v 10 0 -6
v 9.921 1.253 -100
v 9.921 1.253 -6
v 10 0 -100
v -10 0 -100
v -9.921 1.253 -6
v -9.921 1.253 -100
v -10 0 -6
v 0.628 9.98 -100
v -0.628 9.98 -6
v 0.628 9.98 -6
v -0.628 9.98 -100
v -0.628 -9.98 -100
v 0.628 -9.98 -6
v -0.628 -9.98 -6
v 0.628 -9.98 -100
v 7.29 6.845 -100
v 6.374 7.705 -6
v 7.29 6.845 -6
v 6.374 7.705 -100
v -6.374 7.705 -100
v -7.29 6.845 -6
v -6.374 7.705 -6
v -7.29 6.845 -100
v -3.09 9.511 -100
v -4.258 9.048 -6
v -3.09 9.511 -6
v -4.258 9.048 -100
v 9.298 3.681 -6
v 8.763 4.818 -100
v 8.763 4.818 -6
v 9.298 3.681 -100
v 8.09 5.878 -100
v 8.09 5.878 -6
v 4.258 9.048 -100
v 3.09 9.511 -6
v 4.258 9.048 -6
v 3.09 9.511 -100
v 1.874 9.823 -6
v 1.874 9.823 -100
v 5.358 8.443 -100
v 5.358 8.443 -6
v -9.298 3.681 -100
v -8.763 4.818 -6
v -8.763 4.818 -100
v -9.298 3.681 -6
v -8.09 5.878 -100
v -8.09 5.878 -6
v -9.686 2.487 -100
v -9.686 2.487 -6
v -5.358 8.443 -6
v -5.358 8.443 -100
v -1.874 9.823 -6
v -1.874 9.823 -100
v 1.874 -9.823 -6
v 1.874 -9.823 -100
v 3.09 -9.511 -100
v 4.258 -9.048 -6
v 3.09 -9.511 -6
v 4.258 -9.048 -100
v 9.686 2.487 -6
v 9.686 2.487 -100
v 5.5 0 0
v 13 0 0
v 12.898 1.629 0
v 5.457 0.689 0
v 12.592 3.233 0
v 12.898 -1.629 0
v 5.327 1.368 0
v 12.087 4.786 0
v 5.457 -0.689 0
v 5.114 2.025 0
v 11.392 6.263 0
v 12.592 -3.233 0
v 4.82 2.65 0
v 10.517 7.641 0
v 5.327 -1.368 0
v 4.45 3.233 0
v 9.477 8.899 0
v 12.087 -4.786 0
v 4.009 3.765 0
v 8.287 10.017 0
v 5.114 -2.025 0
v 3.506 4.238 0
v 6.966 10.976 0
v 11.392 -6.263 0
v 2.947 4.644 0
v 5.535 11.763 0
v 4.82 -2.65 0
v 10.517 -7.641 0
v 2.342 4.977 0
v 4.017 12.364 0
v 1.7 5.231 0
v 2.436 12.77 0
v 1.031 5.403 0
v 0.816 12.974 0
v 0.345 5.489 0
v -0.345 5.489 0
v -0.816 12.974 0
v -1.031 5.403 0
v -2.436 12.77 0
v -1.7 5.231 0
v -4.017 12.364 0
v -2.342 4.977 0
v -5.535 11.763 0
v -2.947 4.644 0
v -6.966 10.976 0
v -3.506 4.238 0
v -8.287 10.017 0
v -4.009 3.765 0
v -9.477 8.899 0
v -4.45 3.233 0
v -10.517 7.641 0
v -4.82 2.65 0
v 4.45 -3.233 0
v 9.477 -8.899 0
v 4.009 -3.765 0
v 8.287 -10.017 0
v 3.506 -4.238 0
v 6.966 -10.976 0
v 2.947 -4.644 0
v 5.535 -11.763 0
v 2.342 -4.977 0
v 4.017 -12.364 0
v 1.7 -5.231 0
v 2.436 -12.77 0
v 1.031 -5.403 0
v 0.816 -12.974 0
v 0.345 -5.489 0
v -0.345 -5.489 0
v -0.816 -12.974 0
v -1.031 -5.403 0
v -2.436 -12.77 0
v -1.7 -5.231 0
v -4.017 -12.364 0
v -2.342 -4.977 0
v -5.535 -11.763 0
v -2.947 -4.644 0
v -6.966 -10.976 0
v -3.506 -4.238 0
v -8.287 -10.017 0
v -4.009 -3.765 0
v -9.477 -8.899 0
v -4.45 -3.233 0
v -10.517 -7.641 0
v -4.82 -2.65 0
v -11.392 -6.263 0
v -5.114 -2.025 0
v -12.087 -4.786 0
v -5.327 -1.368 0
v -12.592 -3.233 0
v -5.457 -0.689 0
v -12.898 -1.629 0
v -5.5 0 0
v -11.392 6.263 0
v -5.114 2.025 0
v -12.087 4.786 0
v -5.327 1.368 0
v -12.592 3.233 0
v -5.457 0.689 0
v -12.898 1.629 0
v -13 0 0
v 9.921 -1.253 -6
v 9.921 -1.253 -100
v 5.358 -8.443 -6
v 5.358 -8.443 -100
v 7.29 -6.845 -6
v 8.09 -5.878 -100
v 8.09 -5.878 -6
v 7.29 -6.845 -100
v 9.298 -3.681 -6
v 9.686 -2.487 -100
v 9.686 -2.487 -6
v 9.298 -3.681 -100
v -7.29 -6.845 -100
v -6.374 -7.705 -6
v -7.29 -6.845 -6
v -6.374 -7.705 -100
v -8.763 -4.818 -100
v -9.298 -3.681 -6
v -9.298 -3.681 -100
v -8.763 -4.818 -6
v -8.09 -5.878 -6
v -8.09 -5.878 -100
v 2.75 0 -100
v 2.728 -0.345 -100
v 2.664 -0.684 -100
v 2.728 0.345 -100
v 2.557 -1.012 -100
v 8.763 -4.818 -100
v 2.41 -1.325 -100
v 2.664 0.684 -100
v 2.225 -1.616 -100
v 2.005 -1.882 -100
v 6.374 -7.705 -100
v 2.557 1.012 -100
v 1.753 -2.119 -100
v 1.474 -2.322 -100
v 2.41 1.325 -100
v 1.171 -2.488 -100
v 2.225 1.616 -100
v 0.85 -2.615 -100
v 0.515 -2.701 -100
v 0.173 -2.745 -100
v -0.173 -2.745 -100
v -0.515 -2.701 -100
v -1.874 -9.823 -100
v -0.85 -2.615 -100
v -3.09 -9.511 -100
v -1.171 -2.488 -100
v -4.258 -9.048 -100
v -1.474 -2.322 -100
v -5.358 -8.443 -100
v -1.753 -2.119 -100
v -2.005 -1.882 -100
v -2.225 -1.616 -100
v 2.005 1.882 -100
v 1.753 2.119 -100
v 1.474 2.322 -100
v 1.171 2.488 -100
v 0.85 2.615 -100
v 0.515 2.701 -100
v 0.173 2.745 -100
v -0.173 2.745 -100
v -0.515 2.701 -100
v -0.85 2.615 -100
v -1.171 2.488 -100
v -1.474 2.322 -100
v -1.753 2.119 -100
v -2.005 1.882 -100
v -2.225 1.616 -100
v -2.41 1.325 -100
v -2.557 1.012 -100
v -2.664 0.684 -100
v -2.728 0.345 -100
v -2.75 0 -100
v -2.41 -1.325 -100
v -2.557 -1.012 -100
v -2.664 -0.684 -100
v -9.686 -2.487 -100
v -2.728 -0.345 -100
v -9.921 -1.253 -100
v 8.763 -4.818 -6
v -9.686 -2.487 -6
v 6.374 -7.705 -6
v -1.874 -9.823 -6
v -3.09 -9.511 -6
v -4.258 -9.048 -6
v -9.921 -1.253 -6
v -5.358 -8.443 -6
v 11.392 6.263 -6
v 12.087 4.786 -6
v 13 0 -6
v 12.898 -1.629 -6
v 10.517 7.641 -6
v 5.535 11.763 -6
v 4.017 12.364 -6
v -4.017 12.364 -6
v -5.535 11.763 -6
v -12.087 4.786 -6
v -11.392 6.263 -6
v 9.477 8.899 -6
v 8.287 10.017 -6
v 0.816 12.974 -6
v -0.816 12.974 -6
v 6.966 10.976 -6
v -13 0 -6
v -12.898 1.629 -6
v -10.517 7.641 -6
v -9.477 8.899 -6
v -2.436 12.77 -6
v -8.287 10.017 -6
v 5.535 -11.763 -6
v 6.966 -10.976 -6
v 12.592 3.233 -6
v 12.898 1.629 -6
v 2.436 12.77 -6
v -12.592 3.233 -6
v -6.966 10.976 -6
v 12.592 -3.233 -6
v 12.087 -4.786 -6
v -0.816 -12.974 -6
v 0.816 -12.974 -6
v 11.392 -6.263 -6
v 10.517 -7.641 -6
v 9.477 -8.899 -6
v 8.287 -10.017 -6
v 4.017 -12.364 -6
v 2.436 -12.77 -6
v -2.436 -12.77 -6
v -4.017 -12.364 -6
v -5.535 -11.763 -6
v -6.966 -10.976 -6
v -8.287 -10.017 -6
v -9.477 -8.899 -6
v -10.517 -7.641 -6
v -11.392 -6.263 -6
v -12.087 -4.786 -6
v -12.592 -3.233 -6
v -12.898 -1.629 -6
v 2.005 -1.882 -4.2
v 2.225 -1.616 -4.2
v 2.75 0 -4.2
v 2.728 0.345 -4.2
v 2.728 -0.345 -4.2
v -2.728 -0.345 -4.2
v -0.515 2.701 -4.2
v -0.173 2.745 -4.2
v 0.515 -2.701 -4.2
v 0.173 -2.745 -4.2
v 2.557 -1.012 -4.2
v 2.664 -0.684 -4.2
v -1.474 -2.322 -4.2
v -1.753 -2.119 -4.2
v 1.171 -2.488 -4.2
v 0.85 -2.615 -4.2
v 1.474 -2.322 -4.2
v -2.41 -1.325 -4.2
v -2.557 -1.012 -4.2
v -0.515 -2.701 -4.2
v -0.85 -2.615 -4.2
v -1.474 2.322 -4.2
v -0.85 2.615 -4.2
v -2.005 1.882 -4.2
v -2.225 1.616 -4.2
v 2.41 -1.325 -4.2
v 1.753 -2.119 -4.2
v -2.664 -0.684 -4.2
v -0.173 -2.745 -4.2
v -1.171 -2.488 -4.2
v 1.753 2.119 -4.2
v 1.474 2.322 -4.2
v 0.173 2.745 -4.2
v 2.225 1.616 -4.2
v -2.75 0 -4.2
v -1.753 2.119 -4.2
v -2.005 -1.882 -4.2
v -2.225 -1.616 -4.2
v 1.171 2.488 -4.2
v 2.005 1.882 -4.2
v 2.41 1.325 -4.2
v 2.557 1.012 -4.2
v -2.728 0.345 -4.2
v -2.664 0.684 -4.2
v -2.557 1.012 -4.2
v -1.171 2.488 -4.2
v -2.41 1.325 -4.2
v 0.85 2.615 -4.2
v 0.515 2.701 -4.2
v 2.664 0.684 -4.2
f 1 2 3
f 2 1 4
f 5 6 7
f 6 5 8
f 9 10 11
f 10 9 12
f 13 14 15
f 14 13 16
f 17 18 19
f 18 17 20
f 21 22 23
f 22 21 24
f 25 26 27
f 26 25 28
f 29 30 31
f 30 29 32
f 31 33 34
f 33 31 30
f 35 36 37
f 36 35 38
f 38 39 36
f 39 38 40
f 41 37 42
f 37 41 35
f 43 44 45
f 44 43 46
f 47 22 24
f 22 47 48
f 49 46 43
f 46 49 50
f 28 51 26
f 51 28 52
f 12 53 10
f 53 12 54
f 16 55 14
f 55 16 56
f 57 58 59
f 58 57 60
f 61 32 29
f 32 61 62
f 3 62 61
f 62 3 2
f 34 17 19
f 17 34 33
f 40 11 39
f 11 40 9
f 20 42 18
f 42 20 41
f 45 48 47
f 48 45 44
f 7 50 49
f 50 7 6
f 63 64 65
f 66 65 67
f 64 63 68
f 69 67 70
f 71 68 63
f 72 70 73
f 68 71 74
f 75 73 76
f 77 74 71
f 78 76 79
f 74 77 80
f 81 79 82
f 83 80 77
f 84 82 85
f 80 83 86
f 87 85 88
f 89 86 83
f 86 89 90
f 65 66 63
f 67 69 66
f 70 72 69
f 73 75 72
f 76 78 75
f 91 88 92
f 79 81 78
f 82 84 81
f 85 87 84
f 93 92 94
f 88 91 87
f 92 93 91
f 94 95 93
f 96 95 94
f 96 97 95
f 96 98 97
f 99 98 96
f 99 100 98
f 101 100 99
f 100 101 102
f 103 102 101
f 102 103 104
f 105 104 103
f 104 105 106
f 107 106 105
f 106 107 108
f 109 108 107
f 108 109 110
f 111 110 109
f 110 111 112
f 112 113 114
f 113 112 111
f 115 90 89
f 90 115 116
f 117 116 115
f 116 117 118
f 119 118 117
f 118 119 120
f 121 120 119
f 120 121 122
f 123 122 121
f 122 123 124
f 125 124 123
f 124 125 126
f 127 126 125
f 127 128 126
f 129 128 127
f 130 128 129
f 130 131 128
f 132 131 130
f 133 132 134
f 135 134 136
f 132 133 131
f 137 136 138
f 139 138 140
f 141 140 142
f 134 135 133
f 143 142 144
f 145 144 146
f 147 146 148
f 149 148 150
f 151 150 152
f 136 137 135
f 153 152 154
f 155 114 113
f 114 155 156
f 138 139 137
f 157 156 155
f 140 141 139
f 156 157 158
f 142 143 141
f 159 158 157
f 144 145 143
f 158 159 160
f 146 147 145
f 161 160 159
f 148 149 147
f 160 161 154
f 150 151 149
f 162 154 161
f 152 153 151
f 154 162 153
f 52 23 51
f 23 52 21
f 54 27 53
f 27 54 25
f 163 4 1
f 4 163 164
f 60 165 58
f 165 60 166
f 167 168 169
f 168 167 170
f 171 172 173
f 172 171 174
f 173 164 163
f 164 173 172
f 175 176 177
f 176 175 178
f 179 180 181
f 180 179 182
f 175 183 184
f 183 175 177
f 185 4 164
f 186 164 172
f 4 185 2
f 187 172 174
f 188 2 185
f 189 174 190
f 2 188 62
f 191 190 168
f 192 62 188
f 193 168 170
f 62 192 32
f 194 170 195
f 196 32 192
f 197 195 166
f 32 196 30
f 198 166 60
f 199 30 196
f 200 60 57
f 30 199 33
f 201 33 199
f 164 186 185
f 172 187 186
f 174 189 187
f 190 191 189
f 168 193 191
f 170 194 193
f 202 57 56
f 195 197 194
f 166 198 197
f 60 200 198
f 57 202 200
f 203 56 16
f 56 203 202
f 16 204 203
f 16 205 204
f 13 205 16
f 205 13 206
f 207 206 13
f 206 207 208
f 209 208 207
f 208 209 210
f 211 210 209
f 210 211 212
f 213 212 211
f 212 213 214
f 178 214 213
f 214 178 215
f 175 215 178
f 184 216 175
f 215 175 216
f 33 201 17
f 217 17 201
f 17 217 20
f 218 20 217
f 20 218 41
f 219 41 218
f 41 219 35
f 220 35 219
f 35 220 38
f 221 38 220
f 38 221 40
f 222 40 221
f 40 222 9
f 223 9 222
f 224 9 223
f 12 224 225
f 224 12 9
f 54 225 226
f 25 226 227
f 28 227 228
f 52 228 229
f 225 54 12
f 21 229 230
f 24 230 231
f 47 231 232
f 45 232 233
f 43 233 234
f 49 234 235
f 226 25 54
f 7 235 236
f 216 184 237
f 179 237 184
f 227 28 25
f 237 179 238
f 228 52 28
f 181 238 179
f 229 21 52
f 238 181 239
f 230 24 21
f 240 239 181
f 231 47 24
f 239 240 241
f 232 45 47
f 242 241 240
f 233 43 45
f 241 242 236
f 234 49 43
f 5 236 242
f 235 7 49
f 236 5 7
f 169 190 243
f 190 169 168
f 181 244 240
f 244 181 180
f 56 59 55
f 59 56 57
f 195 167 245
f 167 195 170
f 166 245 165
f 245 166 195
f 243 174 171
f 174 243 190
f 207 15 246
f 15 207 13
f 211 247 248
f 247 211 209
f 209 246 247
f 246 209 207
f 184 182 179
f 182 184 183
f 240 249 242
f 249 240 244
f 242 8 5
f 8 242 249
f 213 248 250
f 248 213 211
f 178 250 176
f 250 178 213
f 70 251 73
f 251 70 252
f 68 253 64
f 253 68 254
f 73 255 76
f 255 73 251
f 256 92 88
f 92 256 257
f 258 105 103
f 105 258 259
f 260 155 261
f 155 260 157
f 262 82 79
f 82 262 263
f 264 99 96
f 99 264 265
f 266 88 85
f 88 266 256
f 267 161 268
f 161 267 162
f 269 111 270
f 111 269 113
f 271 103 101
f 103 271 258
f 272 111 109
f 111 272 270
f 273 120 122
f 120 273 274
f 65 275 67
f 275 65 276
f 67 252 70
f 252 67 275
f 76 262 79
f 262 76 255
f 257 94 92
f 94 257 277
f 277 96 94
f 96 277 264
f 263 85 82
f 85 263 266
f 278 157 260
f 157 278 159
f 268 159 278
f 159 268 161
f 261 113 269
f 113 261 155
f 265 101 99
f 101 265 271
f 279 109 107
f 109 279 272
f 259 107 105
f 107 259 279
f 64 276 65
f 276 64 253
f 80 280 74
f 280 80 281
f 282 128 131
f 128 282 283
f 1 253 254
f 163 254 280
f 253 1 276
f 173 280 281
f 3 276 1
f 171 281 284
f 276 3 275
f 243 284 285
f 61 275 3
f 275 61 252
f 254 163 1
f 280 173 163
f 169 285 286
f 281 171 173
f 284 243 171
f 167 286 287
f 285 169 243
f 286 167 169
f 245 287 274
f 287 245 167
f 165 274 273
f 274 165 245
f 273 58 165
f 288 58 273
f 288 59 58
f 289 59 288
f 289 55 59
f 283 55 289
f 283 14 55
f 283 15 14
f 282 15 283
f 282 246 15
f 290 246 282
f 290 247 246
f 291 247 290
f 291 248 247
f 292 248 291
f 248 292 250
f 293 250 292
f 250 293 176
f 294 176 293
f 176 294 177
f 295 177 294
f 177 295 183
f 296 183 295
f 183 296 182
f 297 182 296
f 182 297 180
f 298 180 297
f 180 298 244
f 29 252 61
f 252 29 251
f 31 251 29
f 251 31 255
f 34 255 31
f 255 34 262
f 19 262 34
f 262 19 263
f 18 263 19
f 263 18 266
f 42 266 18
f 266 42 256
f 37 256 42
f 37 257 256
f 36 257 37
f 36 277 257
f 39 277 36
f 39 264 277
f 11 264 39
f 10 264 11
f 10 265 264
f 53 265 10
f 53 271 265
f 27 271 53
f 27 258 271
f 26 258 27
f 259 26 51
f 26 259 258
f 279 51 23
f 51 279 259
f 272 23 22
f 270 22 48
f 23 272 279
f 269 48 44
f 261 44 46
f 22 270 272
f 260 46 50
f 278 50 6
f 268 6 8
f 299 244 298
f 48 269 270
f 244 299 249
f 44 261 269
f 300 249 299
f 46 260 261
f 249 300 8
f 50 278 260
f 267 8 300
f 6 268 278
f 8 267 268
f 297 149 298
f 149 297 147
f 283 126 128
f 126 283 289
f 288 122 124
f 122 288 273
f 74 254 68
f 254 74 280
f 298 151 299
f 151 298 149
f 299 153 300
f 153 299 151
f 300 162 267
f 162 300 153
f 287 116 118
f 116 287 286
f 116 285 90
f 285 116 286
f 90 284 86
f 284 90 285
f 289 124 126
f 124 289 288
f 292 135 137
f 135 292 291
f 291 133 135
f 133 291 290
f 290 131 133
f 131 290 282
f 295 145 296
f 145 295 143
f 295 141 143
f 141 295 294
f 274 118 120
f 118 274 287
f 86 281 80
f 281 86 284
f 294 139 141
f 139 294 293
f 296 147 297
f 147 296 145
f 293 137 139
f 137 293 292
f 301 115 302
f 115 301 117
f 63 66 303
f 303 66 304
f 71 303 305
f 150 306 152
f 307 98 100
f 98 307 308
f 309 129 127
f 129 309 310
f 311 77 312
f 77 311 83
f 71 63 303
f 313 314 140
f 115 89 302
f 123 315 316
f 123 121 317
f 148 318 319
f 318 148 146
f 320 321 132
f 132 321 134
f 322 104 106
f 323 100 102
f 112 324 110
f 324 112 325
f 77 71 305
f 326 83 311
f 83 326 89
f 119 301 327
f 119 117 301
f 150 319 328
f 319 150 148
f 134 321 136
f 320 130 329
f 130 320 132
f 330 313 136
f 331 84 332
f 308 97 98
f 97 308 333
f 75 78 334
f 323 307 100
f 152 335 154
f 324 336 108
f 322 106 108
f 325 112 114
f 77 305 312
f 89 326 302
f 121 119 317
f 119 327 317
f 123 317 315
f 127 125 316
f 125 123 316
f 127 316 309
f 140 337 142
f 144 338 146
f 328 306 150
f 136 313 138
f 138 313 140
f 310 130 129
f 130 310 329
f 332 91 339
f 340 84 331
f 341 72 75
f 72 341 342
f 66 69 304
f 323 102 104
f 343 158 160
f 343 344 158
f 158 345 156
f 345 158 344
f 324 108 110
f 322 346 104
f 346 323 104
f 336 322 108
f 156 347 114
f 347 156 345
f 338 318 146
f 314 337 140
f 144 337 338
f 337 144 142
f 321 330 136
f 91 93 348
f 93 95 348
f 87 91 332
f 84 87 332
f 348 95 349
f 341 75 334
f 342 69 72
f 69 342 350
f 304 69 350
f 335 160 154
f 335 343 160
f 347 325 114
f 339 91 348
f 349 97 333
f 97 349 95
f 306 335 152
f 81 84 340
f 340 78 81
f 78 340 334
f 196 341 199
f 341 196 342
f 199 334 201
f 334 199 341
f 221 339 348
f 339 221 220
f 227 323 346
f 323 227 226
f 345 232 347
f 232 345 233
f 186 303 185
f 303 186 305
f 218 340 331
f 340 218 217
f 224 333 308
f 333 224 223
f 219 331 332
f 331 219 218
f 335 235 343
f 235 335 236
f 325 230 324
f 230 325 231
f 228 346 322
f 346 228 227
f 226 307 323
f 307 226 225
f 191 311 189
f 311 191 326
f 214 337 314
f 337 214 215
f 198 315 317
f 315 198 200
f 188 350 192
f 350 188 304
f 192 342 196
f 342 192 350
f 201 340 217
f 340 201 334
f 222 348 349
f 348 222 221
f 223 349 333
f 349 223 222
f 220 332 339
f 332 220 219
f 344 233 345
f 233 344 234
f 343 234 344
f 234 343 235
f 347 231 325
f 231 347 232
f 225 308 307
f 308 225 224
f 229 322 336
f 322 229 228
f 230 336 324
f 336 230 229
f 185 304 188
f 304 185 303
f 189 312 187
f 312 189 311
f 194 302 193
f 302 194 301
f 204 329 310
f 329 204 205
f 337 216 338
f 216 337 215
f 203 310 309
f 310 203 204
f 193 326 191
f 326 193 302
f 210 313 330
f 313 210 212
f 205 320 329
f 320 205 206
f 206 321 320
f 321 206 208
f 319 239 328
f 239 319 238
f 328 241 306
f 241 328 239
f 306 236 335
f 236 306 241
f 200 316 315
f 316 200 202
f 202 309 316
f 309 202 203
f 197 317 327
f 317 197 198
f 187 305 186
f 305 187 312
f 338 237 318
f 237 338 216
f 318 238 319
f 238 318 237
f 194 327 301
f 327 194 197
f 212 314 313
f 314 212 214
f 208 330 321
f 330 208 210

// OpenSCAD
$fn = 50;


difference() {
	union() {
		translate(v = [0, 0, -100.0000000000]) {
			cylinder(h = 100, r = 10.0000000000);
		}
		translate(v = [0, 0, -6.0000000000]) {
			cylinder(h = 6, r = 13.0000000000);
		}
	}
	union() {
		translate(v = [0, 0, 0]) {
			rotate(a = [0, 0, 0]) {
				difference() {
					union() {
						#translate(v = [0, 0, -100.0000000000]) {
							cylinder(h = 100, r = 2.2500000000);
						}
						#translate(v = [0, 0, -4.2000000000]) {
							cylinder(h = 4.2000000000, r1 = 2.7500000000, r2 = 5.5000000000);
						}
						#translate(v = [0, 0, -100.0000000000]) {
							cylinder(h = 100, r = 2.7500000000);
						}
						#translate(v = [0, 0, -100.0000000000]) {
							cylinder(h = 100, r = 2.2500000000);
						}
					}
					union();
				}
			}
		}
	}
}
